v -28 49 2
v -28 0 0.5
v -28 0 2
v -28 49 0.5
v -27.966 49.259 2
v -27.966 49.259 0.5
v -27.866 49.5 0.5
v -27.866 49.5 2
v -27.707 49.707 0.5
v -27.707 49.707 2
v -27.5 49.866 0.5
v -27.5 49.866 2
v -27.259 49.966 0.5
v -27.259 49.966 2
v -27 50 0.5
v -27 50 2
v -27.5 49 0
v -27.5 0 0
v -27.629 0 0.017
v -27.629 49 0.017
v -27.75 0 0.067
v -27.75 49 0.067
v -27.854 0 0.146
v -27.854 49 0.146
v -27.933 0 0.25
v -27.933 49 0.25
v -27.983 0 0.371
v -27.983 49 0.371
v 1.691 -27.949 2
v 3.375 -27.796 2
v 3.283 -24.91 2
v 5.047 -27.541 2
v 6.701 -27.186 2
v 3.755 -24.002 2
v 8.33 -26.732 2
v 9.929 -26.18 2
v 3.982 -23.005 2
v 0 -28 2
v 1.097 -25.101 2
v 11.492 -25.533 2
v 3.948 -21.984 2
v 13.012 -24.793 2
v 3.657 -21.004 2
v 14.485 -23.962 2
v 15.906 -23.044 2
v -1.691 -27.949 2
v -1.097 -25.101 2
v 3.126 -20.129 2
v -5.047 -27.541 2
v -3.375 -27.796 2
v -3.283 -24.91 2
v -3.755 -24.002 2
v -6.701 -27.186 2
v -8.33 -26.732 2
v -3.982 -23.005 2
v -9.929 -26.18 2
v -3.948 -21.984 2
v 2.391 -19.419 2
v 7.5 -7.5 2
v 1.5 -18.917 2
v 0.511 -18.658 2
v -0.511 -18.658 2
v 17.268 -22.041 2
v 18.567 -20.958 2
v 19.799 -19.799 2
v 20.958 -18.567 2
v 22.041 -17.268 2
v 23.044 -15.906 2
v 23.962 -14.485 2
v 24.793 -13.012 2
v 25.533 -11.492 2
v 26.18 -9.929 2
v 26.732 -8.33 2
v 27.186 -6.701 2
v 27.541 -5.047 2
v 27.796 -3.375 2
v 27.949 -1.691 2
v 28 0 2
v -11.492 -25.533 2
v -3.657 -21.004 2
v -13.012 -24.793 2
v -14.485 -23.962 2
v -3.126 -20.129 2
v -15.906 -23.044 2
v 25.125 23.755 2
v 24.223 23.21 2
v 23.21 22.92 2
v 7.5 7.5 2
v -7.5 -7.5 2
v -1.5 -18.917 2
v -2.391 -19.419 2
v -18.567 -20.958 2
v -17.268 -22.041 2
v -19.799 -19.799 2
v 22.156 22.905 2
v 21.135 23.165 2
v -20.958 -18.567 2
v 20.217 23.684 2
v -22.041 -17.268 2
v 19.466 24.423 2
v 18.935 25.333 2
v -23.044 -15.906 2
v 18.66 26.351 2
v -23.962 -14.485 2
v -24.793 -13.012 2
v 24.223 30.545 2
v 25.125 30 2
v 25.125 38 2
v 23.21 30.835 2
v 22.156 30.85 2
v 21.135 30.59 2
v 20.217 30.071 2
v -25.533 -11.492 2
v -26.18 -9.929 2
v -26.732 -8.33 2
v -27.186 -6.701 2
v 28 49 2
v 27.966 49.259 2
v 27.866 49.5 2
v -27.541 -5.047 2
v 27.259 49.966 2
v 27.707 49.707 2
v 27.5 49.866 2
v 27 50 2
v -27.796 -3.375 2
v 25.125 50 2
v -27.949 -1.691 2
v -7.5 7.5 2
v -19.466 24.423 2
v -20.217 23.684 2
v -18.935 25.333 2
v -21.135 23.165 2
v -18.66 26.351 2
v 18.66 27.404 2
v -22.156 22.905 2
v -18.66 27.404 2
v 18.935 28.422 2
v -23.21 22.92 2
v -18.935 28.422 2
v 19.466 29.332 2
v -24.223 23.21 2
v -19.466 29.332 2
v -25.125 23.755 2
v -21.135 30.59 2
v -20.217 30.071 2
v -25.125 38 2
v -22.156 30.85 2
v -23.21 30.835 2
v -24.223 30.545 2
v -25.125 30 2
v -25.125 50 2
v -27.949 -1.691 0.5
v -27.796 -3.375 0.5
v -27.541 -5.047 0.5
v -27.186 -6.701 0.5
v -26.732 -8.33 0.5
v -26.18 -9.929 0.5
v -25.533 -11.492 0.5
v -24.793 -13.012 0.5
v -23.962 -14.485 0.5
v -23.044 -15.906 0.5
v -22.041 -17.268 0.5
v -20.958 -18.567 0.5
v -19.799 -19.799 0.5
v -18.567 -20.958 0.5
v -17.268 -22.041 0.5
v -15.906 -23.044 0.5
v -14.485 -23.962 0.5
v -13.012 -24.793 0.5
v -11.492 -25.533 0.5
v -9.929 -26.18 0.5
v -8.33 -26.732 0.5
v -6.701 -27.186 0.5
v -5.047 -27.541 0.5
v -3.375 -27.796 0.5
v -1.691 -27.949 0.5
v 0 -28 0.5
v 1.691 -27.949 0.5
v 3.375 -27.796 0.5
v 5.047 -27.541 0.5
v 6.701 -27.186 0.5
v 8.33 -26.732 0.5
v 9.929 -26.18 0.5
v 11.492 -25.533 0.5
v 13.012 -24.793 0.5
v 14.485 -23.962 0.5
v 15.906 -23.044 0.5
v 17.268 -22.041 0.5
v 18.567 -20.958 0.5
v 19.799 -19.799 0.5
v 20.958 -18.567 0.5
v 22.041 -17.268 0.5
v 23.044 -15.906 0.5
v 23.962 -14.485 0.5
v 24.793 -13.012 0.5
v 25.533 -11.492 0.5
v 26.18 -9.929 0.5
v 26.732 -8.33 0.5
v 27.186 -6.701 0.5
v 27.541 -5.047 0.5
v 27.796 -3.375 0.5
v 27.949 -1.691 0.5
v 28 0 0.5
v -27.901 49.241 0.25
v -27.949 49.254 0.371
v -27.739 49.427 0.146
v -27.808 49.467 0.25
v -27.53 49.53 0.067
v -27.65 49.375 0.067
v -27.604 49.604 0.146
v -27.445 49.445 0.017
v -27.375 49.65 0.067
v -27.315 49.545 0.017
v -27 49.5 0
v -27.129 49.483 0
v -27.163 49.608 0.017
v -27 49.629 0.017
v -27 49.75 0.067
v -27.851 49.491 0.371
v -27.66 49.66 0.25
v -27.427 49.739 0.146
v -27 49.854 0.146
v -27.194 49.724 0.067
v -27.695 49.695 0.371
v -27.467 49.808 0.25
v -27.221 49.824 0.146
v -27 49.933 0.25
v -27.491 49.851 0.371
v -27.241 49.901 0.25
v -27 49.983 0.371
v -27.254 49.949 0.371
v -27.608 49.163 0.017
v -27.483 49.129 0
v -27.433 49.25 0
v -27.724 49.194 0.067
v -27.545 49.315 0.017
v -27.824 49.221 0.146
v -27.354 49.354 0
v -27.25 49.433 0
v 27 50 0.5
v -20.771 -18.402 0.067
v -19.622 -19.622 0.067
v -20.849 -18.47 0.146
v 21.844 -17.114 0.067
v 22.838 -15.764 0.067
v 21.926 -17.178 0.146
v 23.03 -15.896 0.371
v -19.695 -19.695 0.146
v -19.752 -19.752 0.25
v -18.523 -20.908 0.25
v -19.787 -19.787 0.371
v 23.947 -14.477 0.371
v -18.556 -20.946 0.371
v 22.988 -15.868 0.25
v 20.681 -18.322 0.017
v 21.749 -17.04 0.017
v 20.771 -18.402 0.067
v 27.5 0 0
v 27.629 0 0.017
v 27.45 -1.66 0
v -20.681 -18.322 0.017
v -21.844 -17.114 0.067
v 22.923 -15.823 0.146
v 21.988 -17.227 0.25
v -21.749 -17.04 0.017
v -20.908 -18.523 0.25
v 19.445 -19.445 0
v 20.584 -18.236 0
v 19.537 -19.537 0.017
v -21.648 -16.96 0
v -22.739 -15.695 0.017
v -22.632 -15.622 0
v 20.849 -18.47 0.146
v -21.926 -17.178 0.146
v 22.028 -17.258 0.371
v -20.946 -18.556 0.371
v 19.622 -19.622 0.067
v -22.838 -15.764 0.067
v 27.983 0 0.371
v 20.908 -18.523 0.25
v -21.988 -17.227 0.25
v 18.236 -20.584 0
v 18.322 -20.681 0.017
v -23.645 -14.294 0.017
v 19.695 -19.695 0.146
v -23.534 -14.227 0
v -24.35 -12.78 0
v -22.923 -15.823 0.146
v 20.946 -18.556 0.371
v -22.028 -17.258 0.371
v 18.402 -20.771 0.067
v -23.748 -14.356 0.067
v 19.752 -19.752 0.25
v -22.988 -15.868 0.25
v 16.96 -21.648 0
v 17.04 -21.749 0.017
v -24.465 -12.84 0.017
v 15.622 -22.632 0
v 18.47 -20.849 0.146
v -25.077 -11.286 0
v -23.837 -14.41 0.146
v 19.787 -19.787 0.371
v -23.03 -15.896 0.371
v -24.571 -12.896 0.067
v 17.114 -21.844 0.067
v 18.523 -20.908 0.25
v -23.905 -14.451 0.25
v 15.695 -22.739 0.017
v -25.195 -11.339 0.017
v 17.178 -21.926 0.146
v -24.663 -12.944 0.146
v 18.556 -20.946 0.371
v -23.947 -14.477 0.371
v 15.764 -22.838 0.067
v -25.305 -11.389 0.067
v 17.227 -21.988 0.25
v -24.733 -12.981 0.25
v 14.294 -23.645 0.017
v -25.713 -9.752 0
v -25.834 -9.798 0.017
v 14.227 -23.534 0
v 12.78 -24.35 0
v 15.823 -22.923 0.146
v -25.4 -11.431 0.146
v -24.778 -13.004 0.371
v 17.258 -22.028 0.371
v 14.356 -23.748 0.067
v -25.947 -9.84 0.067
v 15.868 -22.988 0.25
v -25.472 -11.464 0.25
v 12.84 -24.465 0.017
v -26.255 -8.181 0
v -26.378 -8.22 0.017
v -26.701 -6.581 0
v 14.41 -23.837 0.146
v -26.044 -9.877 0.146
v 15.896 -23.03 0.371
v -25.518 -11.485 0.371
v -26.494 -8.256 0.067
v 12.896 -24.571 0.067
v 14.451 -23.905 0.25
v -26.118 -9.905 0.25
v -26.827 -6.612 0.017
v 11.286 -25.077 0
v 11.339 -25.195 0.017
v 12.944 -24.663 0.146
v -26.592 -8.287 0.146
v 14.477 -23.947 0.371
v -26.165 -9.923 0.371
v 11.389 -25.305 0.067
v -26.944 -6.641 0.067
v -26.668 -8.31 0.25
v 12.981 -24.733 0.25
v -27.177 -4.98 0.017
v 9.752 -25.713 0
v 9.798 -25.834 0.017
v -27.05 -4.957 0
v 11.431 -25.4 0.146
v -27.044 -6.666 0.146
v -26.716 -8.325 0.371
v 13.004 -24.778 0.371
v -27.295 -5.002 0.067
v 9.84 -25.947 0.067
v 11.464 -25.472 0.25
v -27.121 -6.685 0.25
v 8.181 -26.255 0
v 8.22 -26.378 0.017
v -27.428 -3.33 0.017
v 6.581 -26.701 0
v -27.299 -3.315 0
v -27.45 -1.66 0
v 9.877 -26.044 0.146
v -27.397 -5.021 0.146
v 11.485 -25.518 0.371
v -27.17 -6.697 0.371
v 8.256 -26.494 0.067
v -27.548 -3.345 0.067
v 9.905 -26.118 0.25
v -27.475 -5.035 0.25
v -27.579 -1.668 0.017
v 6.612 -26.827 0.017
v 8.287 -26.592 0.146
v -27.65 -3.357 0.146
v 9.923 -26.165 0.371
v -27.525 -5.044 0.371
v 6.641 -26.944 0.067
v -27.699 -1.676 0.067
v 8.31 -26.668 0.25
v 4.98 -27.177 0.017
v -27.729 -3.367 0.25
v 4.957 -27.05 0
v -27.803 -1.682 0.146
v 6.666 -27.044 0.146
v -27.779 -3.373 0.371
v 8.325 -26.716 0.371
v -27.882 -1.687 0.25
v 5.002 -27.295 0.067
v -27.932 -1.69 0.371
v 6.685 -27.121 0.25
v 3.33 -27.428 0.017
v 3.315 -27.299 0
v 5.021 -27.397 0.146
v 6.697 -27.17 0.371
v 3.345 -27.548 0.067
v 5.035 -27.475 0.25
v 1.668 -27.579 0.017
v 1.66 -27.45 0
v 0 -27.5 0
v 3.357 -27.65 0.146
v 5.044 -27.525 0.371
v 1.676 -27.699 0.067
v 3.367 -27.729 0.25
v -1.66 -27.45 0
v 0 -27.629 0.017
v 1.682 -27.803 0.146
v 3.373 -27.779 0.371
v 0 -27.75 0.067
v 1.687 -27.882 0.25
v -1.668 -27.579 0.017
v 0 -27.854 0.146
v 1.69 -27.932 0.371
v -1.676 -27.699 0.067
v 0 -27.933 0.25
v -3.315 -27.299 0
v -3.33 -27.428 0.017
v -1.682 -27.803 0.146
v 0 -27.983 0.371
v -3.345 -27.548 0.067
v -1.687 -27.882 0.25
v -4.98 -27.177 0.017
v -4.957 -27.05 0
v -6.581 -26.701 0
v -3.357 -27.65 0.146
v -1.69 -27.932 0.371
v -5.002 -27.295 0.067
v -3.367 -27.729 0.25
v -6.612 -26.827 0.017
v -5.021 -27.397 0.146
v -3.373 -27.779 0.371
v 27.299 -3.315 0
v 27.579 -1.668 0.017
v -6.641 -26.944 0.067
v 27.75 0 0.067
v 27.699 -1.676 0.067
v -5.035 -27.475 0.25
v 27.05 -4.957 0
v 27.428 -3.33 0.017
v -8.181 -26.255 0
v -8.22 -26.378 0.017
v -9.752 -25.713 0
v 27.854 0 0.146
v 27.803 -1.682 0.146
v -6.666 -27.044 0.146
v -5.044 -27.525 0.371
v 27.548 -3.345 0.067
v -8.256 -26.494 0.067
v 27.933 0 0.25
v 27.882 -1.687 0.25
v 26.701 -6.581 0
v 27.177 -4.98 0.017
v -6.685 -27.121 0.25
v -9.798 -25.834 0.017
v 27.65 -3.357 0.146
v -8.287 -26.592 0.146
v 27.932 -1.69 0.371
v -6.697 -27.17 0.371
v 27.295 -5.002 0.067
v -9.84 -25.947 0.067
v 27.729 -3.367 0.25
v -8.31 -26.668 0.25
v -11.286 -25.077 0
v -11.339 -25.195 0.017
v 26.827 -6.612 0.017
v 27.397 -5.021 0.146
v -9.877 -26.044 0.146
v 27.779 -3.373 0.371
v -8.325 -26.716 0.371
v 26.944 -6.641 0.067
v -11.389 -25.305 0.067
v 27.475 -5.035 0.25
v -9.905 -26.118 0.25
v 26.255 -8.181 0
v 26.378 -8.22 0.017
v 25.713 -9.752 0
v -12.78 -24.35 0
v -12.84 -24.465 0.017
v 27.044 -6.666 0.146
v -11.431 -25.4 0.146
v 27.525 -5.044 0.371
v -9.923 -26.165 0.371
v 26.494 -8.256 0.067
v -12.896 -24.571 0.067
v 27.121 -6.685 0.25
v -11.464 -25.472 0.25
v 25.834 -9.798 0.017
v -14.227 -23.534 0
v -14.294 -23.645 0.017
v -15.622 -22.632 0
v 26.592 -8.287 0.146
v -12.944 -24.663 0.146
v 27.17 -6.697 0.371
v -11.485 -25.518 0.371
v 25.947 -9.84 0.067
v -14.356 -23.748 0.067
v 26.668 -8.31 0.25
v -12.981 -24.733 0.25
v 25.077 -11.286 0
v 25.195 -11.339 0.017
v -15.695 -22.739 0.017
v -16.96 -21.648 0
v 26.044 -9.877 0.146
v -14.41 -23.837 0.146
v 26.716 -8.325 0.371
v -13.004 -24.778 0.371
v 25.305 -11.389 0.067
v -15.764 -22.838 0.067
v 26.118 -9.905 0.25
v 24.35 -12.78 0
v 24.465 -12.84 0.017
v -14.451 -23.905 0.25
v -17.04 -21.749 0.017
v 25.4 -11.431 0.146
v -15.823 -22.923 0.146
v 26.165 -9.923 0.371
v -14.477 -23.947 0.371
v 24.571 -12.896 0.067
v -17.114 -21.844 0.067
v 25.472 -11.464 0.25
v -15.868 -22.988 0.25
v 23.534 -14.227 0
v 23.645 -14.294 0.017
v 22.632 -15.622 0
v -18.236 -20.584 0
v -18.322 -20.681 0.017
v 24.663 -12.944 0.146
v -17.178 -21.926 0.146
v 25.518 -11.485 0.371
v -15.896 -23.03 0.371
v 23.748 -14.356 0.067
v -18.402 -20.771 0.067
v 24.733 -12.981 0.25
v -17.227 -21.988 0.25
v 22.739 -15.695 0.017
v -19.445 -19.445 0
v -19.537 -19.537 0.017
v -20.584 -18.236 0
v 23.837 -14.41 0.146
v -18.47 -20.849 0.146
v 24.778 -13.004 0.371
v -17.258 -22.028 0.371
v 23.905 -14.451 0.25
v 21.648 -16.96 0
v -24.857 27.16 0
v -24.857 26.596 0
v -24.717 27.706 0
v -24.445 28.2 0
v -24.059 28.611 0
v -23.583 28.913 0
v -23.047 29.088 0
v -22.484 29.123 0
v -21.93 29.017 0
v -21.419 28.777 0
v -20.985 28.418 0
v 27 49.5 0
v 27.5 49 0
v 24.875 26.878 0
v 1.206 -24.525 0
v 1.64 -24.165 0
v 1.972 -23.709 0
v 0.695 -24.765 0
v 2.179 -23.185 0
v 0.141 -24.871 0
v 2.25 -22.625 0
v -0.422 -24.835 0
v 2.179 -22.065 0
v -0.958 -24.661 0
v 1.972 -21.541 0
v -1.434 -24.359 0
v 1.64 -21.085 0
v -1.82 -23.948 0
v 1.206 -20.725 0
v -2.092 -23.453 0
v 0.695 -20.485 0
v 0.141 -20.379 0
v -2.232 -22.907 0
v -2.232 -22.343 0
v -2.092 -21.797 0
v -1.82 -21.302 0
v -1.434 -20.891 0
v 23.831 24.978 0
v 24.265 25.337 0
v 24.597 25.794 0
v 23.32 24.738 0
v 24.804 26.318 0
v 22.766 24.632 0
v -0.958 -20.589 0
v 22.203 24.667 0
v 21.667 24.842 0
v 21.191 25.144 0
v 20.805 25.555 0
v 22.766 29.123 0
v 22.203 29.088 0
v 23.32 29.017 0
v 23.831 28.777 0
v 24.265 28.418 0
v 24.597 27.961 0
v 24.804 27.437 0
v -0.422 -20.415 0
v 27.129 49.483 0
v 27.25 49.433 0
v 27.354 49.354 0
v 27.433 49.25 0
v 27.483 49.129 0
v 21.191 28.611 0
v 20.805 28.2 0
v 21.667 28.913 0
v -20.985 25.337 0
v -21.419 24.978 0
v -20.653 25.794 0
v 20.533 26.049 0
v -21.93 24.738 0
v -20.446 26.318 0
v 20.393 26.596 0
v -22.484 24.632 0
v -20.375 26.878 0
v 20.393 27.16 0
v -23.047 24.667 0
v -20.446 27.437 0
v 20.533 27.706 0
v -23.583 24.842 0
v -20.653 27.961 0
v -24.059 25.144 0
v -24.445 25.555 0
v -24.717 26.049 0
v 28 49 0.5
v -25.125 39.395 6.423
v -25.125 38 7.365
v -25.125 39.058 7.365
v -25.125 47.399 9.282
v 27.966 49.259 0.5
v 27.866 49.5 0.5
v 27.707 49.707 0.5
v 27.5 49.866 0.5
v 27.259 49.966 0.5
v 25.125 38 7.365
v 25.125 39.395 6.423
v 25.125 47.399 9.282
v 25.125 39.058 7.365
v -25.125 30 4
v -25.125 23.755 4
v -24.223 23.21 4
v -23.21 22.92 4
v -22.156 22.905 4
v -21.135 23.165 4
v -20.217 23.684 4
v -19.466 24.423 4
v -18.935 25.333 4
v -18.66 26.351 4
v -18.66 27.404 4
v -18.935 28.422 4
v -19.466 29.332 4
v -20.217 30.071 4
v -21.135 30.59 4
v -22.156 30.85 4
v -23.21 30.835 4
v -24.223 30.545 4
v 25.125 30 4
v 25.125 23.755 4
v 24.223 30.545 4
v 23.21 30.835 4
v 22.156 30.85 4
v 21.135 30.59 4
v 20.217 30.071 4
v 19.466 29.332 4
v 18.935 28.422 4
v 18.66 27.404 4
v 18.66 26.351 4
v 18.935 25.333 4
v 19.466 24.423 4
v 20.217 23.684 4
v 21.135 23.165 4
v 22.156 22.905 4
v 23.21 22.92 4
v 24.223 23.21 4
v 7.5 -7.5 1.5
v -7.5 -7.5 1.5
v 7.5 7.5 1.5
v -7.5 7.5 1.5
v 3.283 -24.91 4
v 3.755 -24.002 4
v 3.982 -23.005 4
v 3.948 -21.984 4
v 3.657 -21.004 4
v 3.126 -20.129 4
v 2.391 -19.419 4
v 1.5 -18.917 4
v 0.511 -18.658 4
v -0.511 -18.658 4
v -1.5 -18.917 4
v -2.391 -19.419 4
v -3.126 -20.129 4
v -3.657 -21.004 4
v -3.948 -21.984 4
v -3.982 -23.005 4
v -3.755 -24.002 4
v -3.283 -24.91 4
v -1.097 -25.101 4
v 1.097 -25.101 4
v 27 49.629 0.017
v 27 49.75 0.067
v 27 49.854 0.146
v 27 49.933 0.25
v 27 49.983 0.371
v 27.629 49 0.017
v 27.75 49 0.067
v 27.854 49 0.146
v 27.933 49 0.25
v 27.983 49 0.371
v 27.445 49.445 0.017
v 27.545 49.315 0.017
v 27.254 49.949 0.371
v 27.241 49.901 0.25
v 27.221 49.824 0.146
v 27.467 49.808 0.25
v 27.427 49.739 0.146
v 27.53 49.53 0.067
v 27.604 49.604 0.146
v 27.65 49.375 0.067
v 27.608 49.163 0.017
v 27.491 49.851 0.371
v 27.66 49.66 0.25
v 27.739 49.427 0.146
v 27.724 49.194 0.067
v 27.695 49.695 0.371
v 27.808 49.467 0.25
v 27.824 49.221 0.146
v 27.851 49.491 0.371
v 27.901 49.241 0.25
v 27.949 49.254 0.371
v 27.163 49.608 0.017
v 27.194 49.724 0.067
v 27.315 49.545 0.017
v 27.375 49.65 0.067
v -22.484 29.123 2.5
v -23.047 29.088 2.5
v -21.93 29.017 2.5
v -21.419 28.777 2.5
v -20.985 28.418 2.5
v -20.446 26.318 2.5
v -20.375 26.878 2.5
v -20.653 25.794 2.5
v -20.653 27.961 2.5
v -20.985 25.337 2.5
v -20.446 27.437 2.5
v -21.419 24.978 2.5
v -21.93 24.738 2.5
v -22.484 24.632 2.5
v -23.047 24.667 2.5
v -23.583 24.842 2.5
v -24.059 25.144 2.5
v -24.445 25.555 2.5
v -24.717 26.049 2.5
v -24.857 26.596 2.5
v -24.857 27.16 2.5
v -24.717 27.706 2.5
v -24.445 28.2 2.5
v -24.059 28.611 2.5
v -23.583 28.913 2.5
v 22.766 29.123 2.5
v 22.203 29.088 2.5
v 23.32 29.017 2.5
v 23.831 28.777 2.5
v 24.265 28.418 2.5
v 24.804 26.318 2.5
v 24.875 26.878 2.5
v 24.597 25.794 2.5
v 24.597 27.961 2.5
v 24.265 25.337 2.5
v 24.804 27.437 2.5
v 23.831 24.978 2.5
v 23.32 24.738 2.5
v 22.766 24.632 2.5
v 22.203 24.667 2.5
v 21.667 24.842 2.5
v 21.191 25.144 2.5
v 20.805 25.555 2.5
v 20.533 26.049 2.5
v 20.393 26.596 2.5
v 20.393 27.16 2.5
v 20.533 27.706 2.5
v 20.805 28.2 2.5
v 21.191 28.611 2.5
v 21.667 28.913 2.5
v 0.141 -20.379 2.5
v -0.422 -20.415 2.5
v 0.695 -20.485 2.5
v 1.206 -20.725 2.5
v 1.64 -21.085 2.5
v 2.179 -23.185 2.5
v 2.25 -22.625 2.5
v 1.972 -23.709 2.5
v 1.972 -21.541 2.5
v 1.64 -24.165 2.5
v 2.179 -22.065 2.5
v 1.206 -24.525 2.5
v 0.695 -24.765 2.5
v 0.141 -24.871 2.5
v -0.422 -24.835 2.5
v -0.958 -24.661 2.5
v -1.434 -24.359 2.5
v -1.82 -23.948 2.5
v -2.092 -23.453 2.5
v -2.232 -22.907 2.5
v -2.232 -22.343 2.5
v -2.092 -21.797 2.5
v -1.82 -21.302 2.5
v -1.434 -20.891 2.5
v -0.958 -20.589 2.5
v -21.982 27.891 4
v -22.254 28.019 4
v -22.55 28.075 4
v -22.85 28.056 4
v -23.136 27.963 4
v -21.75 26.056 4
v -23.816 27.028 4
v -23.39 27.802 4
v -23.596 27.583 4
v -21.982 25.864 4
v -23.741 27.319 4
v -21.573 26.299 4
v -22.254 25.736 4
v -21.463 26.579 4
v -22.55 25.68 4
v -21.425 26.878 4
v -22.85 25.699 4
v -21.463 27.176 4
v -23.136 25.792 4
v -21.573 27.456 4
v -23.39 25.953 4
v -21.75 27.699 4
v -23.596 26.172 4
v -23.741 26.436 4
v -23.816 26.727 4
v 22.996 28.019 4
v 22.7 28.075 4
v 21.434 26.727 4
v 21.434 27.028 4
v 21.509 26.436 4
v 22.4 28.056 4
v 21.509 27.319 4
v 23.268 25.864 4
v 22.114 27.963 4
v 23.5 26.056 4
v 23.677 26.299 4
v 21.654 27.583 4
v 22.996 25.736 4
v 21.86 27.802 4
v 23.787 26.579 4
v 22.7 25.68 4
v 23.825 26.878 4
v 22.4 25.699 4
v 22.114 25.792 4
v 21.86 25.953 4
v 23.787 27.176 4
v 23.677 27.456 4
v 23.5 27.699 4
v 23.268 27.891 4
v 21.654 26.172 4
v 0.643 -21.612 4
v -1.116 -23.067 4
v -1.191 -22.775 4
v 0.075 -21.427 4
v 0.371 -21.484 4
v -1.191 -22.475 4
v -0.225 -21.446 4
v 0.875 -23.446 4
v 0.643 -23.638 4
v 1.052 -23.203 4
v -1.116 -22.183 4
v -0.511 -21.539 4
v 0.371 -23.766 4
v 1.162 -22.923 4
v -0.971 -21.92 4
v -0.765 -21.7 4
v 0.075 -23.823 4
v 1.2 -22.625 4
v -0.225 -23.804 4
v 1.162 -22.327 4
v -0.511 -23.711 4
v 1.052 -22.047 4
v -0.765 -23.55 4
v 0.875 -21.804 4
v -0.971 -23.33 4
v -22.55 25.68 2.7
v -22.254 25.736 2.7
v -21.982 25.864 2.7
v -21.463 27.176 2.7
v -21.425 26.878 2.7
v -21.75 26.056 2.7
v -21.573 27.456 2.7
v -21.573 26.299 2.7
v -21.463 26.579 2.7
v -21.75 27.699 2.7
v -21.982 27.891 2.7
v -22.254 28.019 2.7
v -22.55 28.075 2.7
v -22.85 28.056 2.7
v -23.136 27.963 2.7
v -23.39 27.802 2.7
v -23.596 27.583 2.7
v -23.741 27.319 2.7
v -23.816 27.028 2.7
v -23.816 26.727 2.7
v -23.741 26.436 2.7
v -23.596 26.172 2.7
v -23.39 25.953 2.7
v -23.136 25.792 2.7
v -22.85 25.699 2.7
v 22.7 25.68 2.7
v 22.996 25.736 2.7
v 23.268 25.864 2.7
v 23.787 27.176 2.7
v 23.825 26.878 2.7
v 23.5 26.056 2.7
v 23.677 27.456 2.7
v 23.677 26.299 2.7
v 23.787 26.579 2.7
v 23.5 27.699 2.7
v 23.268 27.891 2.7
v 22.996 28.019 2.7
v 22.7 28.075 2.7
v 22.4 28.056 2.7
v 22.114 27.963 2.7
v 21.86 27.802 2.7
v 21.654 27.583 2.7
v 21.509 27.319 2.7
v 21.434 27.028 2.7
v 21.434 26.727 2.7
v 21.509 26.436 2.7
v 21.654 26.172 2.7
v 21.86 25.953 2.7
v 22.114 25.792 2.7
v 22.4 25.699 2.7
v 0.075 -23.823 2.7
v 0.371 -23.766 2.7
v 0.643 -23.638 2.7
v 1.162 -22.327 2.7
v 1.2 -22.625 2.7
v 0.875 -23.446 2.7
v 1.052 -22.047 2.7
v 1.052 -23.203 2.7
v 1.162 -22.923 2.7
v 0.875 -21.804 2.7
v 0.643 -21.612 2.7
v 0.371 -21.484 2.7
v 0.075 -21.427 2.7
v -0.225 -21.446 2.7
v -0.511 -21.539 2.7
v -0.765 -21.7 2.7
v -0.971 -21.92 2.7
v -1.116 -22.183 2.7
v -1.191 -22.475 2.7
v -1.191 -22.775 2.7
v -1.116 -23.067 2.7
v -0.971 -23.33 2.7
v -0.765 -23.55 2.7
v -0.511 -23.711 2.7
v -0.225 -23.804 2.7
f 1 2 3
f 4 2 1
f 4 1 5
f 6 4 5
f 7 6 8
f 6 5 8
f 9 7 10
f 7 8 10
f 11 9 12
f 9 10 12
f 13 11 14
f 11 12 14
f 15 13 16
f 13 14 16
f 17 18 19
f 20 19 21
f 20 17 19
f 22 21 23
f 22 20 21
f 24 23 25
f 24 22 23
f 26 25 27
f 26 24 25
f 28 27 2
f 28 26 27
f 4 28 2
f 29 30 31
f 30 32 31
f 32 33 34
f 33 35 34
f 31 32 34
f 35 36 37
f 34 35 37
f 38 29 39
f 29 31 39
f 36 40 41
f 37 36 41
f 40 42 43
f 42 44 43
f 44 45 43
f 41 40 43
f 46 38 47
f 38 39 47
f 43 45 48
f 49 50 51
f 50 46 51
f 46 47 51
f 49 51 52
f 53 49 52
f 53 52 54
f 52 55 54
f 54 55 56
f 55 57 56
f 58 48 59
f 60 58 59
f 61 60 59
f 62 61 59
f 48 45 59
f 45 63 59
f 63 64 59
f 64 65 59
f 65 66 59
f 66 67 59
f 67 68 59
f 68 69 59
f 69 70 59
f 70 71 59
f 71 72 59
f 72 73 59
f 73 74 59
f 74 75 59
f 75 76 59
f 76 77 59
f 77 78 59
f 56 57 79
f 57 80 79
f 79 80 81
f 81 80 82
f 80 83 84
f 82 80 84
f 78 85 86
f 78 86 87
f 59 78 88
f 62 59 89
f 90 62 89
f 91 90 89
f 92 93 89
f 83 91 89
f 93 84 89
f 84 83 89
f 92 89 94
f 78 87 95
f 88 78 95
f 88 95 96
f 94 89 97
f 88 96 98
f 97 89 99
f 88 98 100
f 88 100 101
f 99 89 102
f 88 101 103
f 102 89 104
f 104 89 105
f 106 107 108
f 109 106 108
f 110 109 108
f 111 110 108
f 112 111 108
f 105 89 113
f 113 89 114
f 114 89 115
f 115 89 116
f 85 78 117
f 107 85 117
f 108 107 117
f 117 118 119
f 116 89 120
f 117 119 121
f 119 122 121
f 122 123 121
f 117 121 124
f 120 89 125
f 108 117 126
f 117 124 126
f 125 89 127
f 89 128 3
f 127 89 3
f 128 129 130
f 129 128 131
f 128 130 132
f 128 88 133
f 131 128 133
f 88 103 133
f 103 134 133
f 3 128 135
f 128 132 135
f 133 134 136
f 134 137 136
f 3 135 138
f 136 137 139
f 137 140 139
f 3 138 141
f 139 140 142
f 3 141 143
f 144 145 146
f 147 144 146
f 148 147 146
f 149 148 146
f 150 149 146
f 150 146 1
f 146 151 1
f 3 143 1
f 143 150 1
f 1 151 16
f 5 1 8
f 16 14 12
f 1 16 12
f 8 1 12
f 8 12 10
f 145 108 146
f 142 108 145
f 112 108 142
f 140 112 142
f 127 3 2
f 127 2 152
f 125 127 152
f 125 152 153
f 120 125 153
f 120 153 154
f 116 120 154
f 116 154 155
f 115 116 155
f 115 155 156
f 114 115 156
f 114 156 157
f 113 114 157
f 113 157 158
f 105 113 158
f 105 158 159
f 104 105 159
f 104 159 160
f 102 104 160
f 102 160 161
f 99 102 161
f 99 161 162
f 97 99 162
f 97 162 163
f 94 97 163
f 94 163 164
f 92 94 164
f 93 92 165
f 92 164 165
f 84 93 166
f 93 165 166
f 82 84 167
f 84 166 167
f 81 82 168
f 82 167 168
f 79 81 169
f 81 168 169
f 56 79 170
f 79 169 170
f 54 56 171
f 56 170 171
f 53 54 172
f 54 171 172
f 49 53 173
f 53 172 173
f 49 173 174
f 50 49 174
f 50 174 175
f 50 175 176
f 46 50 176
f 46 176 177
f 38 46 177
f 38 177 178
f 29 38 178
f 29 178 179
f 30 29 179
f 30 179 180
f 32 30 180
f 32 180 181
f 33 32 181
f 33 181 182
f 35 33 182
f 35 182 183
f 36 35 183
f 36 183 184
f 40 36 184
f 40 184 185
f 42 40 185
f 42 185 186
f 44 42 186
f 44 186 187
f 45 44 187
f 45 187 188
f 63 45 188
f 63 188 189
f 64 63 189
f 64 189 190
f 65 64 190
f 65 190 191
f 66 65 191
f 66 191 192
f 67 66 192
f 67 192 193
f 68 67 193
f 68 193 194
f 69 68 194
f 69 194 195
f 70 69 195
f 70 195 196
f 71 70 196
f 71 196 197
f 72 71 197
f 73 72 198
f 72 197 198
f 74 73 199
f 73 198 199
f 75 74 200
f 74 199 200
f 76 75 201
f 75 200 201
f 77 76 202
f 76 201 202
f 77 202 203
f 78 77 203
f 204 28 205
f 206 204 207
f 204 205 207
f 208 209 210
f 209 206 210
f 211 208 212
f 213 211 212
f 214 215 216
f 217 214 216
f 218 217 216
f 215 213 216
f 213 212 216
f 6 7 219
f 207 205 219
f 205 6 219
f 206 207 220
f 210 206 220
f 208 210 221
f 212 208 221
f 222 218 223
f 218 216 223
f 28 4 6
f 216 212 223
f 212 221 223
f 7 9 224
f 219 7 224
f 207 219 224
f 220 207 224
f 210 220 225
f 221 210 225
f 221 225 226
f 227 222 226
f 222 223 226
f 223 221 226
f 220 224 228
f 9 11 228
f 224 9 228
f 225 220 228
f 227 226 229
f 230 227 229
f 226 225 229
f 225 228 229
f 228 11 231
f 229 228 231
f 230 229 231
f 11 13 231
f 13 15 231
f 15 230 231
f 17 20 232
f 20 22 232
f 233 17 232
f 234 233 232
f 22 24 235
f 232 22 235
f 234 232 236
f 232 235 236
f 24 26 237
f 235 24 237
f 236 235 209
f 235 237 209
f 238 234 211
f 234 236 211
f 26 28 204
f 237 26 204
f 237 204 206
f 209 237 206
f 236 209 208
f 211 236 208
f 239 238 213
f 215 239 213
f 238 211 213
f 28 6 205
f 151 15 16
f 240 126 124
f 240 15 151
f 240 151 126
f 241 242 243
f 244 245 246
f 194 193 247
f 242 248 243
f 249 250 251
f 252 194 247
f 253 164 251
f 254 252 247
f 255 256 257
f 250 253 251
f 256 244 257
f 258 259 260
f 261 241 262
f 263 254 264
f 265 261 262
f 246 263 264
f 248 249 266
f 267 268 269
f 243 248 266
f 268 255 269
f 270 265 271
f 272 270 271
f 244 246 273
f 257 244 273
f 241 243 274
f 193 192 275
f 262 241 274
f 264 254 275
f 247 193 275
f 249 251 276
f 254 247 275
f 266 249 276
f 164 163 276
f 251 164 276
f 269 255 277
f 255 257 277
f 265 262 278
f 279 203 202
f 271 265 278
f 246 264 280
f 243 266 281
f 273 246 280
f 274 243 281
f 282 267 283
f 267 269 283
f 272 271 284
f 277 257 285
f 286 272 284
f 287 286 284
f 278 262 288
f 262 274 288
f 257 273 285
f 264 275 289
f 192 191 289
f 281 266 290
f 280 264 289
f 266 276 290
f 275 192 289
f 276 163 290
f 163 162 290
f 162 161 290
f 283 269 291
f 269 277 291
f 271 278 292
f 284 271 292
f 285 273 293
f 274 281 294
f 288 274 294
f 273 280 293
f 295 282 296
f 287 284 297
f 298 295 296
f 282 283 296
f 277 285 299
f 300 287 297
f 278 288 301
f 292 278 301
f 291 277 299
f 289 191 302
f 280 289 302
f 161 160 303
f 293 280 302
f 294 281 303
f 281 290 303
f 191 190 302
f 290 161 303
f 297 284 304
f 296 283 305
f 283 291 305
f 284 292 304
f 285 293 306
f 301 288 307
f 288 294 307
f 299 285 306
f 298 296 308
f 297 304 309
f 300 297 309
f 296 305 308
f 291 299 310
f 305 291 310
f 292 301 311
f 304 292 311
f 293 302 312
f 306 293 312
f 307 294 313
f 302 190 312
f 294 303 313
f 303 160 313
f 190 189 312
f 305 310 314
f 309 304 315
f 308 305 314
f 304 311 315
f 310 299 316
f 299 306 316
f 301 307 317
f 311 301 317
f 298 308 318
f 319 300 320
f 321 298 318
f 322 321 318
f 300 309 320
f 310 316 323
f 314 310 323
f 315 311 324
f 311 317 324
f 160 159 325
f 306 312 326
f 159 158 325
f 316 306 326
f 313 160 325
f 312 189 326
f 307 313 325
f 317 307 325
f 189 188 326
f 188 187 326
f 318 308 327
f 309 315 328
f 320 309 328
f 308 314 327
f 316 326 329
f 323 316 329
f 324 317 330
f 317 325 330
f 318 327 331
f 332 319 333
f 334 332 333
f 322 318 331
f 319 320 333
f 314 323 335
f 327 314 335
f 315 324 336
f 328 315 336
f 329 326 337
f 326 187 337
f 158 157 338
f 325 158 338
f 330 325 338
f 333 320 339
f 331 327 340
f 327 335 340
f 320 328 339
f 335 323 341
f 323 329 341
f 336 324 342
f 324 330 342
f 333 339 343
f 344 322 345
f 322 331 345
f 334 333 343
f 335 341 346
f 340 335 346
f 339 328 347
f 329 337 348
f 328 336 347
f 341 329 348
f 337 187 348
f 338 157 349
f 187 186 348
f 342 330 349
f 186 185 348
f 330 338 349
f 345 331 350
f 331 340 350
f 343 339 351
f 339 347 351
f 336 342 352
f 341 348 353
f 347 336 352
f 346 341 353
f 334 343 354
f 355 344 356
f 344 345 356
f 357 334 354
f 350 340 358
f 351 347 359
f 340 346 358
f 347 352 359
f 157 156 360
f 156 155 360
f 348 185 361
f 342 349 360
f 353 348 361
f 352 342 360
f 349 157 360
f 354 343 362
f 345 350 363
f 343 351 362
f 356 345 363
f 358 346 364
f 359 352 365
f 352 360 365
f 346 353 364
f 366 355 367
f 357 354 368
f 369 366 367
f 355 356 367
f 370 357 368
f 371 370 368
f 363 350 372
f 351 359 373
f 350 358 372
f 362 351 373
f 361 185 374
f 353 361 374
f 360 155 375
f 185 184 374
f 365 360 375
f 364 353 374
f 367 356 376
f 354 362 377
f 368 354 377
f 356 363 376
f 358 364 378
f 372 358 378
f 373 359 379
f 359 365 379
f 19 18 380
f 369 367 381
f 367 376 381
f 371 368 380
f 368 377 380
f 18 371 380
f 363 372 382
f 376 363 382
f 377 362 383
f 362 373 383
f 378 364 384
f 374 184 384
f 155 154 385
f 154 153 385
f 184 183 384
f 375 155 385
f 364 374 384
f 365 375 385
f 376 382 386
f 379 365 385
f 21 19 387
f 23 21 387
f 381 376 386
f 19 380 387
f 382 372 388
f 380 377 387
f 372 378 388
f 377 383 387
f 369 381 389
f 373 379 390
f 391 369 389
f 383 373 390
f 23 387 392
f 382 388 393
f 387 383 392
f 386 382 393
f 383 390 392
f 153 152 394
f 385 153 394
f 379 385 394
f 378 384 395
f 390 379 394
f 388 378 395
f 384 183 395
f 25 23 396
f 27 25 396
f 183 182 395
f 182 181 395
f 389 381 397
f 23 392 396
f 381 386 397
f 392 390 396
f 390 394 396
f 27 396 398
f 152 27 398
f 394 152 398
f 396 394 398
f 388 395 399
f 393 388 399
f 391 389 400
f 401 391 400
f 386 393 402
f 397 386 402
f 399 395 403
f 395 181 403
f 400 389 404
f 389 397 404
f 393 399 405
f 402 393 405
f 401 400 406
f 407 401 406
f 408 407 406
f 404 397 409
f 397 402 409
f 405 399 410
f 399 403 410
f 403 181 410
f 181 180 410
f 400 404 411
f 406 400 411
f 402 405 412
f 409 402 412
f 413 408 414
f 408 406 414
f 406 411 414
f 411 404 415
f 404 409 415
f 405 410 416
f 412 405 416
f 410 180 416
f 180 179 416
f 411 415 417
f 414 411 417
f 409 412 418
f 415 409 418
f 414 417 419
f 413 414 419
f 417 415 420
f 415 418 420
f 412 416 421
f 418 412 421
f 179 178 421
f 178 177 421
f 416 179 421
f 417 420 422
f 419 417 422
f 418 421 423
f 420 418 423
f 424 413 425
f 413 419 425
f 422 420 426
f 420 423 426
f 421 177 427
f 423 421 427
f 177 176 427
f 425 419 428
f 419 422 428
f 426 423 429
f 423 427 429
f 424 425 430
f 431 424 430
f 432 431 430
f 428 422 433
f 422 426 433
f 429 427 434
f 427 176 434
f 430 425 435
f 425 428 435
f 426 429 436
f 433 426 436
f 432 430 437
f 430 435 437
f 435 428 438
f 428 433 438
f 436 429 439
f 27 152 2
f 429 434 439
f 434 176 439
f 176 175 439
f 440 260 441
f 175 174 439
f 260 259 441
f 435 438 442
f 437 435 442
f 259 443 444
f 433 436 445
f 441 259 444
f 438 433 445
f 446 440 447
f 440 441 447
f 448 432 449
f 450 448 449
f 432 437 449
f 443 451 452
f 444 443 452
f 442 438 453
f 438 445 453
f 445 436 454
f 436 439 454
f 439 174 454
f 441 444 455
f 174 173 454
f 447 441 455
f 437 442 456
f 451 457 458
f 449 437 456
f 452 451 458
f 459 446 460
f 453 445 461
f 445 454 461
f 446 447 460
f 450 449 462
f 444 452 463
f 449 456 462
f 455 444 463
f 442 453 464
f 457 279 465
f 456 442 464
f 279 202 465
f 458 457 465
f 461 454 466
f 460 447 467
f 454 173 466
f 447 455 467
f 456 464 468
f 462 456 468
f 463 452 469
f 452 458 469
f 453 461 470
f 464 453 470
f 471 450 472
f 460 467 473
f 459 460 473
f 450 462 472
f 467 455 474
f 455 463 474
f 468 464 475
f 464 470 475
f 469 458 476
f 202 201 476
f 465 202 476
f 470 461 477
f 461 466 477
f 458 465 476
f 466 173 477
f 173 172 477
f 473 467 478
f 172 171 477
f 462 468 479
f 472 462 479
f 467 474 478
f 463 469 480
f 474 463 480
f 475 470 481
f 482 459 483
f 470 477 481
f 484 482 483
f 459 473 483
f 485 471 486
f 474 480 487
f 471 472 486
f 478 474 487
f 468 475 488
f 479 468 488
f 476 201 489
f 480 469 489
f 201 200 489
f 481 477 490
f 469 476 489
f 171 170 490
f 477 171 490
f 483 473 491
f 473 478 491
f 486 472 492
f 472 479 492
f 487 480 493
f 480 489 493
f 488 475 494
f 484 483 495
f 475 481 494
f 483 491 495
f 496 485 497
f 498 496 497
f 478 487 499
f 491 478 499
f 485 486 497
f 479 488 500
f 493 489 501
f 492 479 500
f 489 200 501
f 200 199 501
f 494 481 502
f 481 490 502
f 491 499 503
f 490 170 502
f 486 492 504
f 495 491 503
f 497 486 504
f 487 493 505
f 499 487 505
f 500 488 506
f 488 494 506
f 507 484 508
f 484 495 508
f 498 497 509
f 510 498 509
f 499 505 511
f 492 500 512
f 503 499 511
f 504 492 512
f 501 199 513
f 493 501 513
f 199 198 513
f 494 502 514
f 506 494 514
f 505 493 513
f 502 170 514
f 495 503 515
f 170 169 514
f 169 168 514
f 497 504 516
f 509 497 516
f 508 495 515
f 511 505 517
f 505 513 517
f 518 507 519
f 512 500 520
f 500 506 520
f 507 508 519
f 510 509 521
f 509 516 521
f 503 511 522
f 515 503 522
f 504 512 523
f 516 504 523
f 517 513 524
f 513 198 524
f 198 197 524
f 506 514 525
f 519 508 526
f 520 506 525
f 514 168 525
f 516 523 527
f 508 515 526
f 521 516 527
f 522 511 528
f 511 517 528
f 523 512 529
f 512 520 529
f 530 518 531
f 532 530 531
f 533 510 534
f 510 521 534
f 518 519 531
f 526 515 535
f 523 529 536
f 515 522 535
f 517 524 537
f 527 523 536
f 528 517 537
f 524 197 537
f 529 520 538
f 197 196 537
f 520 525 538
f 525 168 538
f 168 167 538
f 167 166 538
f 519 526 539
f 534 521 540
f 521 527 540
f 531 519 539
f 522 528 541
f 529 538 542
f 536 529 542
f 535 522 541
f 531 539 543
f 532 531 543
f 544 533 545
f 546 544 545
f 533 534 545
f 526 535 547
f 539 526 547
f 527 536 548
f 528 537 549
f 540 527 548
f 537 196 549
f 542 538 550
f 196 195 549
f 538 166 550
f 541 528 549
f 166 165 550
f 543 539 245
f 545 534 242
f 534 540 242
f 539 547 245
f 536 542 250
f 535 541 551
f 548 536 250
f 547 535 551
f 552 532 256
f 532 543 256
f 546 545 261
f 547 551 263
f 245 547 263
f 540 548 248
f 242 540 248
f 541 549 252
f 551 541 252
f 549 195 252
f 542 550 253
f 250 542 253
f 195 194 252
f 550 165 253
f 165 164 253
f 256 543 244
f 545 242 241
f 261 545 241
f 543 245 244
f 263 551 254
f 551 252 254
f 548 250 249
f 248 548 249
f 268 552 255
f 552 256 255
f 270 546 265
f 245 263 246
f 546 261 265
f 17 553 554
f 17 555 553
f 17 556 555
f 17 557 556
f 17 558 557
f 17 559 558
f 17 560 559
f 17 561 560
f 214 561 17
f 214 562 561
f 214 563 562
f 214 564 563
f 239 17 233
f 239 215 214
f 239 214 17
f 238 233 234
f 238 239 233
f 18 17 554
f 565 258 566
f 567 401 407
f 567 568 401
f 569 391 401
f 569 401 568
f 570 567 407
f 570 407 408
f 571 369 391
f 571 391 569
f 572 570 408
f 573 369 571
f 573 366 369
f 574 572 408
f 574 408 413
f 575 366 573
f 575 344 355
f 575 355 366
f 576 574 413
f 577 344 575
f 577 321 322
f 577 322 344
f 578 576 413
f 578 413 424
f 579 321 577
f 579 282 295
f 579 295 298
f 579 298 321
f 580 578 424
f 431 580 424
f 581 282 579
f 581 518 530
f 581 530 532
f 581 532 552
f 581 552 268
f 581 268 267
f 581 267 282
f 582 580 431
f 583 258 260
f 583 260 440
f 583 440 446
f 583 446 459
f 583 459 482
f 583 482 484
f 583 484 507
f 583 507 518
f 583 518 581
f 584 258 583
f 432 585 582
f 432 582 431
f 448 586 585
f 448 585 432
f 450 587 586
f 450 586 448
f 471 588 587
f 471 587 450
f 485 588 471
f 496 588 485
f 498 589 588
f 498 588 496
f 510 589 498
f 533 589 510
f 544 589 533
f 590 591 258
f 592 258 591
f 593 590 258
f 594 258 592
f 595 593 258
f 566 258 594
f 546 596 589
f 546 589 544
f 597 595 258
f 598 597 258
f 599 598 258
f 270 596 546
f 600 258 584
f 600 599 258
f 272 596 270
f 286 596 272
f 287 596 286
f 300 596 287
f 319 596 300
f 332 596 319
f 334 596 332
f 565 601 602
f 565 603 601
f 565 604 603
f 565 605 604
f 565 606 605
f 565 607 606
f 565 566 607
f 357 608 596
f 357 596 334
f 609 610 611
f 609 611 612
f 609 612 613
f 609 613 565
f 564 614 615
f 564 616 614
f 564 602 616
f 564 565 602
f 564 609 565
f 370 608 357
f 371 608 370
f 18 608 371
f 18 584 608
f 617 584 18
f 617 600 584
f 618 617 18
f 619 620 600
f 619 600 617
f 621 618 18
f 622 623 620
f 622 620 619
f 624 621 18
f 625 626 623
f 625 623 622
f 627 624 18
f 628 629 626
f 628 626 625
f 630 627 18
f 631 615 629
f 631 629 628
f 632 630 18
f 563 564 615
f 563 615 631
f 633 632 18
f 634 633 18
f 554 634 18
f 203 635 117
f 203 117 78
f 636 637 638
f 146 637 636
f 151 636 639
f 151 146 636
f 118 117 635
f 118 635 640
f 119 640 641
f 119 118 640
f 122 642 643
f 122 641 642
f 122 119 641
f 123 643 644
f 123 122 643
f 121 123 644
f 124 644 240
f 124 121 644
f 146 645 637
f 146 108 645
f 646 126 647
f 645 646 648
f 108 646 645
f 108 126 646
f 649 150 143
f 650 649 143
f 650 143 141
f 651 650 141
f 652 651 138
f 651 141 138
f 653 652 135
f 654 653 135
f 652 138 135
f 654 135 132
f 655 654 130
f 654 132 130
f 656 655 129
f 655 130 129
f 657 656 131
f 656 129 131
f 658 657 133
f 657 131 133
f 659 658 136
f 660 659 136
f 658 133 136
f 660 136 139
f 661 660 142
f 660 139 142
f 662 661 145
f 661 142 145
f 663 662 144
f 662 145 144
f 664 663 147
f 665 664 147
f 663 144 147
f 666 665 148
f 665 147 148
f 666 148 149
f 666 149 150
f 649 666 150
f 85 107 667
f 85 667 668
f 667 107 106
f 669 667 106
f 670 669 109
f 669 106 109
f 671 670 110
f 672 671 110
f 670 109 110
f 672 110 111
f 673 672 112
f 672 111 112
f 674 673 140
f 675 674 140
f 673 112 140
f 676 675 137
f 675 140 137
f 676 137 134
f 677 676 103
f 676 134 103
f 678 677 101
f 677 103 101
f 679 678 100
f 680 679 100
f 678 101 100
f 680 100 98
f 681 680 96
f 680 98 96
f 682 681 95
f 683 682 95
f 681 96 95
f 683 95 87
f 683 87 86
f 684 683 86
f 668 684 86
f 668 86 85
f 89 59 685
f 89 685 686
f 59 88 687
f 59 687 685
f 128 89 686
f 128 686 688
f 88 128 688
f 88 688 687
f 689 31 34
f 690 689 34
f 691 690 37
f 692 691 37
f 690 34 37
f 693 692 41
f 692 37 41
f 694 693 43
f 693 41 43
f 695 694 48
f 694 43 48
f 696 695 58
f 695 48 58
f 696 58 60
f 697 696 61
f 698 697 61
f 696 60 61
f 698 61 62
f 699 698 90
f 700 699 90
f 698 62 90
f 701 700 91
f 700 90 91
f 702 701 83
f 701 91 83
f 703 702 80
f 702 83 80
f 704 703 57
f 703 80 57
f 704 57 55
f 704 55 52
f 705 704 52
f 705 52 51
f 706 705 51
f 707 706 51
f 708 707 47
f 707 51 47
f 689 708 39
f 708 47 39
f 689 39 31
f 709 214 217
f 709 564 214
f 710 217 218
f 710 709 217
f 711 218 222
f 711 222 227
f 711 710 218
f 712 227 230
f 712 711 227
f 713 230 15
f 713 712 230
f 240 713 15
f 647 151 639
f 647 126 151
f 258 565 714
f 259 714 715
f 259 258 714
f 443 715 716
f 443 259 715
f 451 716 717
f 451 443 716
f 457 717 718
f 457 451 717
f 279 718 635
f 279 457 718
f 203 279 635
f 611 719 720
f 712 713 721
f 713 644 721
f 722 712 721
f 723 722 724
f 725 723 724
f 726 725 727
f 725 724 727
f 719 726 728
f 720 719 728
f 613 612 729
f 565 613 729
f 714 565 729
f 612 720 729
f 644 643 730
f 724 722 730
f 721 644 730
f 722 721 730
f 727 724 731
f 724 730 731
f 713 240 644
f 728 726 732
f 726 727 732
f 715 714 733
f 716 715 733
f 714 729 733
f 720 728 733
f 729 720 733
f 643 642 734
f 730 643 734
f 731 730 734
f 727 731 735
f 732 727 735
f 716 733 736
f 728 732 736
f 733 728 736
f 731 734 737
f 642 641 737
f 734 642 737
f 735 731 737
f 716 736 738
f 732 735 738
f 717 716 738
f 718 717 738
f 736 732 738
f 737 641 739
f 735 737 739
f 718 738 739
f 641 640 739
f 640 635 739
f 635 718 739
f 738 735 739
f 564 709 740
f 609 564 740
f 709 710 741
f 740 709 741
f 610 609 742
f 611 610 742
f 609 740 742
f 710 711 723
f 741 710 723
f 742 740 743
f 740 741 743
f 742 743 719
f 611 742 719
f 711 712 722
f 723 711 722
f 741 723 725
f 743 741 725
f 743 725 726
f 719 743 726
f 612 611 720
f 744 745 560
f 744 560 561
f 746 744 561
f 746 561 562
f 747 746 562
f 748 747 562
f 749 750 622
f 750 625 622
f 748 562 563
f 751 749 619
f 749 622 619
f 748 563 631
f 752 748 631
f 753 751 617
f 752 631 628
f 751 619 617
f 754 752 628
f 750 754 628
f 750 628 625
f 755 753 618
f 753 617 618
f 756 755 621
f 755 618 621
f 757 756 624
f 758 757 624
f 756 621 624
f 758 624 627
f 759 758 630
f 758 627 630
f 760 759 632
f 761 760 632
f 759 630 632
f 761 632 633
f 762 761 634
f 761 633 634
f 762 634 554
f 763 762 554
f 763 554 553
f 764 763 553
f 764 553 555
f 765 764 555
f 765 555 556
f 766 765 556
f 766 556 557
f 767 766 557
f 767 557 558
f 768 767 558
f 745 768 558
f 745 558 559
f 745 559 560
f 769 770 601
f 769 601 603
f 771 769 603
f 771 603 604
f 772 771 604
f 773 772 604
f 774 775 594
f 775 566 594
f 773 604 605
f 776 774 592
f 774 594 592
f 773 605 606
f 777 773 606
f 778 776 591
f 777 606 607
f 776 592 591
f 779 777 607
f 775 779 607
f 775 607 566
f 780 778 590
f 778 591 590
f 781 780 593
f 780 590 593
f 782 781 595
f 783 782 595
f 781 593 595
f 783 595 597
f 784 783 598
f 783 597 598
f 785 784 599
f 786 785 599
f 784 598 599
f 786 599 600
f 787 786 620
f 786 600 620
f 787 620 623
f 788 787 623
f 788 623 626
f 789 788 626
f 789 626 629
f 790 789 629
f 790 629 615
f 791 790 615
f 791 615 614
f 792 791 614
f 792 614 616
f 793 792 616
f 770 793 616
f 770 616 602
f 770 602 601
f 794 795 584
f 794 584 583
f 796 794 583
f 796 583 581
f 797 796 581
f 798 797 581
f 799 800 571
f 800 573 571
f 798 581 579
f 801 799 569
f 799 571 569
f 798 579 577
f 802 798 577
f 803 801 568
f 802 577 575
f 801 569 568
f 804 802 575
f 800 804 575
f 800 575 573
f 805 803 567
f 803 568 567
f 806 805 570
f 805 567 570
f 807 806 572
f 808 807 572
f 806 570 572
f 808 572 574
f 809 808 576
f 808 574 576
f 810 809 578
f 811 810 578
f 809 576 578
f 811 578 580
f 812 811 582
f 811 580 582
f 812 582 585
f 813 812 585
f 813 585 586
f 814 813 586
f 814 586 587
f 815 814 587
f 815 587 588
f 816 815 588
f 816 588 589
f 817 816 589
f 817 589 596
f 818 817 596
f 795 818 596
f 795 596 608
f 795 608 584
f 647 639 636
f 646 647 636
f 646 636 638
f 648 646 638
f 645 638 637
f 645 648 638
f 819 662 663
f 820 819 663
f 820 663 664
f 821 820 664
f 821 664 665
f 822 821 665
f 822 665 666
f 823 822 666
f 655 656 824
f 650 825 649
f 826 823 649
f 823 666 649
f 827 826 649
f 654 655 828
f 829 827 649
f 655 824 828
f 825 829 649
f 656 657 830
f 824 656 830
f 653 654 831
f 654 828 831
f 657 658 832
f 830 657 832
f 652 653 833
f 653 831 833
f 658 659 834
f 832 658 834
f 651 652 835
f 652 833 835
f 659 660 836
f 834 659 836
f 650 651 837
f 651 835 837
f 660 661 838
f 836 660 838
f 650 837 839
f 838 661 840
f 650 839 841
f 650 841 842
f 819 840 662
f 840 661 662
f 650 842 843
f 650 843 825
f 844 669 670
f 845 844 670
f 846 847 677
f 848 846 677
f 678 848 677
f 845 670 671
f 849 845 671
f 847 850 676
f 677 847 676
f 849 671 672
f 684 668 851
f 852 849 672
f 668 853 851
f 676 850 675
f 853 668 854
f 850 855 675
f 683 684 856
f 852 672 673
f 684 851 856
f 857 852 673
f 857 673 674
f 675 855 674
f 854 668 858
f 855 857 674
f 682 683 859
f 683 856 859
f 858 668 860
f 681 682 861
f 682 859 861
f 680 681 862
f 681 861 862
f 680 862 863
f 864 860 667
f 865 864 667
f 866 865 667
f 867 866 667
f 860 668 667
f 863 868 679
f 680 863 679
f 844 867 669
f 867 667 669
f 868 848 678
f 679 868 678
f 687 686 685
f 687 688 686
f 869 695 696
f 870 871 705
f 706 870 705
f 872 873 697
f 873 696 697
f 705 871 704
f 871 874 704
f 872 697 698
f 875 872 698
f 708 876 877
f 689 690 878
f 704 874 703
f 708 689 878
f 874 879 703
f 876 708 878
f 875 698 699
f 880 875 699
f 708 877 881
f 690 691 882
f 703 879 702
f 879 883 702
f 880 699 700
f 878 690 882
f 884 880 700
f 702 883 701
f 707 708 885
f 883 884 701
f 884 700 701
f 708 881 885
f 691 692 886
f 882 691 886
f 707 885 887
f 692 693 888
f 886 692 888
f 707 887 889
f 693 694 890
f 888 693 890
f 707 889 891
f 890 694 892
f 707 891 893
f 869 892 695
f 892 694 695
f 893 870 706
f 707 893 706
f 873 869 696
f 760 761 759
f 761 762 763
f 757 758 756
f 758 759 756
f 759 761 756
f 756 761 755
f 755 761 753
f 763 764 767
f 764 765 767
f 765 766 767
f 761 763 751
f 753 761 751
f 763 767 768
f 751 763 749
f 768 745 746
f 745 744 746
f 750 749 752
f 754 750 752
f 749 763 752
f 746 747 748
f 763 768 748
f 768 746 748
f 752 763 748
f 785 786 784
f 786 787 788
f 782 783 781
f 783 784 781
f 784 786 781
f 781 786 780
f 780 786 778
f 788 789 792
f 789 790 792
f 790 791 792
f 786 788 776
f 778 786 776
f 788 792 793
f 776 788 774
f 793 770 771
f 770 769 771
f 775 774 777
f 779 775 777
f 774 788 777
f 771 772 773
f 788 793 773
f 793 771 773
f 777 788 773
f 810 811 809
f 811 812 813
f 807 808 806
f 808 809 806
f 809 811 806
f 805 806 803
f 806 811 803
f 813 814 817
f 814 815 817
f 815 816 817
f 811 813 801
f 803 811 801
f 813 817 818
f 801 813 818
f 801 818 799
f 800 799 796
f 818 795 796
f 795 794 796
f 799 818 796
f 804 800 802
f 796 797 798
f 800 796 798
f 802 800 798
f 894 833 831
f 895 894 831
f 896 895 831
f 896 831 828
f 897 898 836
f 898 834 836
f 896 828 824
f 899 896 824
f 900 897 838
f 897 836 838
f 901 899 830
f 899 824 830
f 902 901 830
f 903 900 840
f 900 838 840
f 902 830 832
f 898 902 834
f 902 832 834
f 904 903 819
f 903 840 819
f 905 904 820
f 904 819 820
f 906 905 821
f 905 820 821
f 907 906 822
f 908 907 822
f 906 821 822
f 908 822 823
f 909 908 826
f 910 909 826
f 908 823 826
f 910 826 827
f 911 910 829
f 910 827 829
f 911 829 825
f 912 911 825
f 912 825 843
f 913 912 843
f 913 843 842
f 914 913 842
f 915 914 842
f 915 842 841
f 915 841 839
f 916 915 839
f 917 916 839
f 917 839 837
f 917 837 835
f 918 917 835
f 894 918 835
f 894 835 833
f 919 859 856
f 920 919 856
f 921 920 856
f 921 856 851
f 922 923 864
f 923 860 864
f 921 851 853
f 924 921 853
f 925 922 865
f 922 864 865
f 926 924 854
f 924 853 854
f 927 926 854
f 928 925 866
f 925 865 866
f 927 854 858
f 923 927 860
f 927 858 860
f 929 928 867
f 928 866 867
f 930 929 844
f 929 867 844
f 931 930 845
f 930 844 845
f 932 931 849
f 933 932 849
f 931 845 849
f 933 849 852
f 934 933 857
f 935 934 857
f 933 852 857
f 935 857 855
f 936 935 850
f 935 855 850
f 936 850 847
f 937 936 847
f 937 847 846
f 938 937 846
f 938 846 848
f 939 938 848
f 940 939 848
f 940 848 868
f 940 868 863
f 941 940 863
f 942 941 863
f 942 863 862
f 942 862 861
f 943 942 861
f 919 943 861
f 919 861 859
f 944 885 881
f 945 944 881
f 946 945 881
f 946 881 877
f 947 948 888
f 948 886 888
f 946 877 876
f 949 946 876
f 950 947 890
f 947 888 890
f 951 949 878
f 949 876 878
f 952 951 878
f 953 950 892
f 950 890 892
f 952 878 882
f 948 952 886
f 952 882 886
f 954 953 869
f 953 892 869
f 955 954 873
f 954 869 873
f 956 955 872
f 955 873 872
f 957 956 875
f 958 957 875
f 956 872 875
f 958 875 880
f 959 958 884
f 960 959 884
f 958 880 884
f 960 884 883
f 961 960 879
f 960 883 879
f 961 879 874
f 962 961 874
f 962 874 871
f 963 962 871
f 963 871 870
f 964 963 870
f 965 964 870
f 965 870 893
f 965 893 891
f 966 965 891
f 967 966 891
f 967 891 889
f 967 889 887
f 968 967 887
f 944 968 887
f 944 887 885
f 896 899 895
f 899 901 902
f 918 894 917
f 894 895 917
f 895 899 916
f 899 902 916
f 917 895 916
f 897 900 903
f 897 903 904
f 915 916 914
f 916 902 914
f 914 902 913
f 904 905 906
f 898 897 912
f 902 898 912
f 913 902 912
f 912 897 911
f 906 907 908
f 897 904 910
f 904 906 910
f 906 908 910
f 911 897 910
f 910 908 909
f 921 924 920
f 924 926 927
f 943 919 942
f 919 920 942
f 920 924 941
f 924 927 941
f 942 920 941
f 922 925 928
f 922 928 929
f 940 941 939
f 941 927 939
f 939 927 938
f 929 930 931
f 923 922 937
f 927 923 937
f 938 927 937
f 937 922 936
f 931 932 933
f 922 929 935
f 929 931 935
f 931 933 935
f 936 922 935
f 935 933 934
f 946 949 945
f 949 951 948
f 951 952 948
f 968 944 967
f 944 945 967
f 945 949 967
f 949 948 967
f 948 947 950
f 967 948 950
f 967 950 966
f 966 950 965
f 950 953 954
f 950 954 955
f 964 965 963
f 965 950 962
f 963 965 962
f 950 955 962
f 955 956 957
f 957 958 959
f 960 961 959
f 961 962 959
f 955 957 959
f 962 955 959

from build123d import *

# Parameters (mm, degrees)
PAD_DEPTH       = 2
SKETCH001_W     = 50.25
SKETCH001_H     = 12
PAD001_DEPTH    = 10
POCKET_DEPTH    = 53.126
SKETCH003_W     = 15
SKETCH003_H     = 15
POCKET001_DEPTH = 0.5
PAD002_DEPTH    = 2
SKETCH005_R     = 1.2
POCKET002_DEPTH = 1.3
SKETCH006_R     = 2.25
POCKET003_DEPTH = 2.5
FILLET_R        = 1
FILLET001_R     = 0.5


with BuildPart() as part:
    # Sketch → Pad (new body)
    with BuildSketch(Plane.XY):
        with BuildLine():
            ThreePointArc((-28, 0), (0, -28), (28, 0))
            Line((28, 50), (28, 0))
            Line((-28, 50), (28, 50))
            Line((-28, 0), (-28, 50))
        make_face()
    extrude(amount=PAD_DEPTH)

    # Sketch001 → Pad001 (new body)
    with BuildSketch(Plane.XY.offset(2)):
        with Locations((0, 44)):
            Rectangle(SKETCH001_W, SKETCH001_H)
    extrude(amount=PAD001_DEPTH)

    # Sketch002 → Pocket (cut, through all)
    with BuildSketch(Plane.YZ.offset(25.125)):
        Polygon((50, 2), (47.399401, 9.281678), (39.394594, 6.422819), (39.058258, 7.36456), (34, 7.36456), (34, 14), (52, 14), (52, 2), align=None)
    extrude(amount=-POCKET_DEPTH, mode=Mode.SUBTRACT)

    # Sketch003 → Pocket001 (cut)
    with BuildSketch(Plane.XY.offset(2)):
        Rectangle(SKETCH003_W, SKETCH003_H)
    extrude(amount=-POCKET001_DEPTH, mode=Mode.SUBTRACT)

    # Sketch004 → Pad002 (new body)
    with BuildSketch(Plane.XY.offset(2)):
        with BuildLine():
            ThreePointArc((-25.125, 23.755002), (-18.625, 26.877501), (-25.125, 30))
            Line((-25.125, 30), (-25.125, 23.755002))
        make_face()
        with BuildLine():
            ThreePointArc((25.125, 30), (18.625, 26.877501), (25.125, 23.755002))
            Line((25.125, 30), (25.125, 23.755002))
        make_face()
        with BuildLine():
            ThreePointArc((3.283431, -24.90953), (0, -18.625), (-3.283431, -24.90953))
            ThreePointArc((-3.283431, -24.90953), (0, -25.125), (3.283431, -24.90953))
        make_face()
    extrude(amount=PAD002_DEPTH)

    # Sketch005 → Pocket002 (cut)
    with BuildSketch(Plane.XY.offset(4)):
        with Locations((-22.625, 26.8775)):
            Circle(SKETCH005_R)
        with Locations((22.625, 26.8775)):
            Circle(SKETCH005_R)
        with Locations((0, -22.625)):
            Circle(SKETCH005_R)
    extrude(amount=-POCKET002_DEPTH, mode=Mode.SUBTRACT)

    # Sketch006 → Pocket003 (cut)
    with BuildSketch(Plane(origin=(0, 0, 0), x_dir=(1, 0, 0), z_dir=(0, 0, -1))):
        with Locations((0, 22.625)):
            Circle(SKETCH006_R)
        with Locations((-22.625, -26.8775)):
            Circle(SKETCH006_R)
        with Locations((22.625, -26.8775)):
            Circle(SKETCH006_R)
    extrude(amount=-POCKET003_DEPTH, mode=Mode.SUBTRACT)

    # Fillet
    fillet_edges = [part.edges().sort_by_distance(p)[0] for p in [
        (-28, 50, 1),
        (28, 50, 1),
    ]]
    fillet(fillet_edges, radius=FILLET_R)

    # Fillet001
    fillet001_edges = [part.edges().sort_by_distance(p)[0] for p in [
        (0, 50, 0),
        (27.707107, 49.707107, 0),
        (28, 24.5, 0),
        (0, -28, 0),
        (-28, 24.5, 0),
        (-27.707107, 49.707107, 0),
    ]]
    fillet(fillet001_edges, radius=FILLET001_R)


solid = part.part
